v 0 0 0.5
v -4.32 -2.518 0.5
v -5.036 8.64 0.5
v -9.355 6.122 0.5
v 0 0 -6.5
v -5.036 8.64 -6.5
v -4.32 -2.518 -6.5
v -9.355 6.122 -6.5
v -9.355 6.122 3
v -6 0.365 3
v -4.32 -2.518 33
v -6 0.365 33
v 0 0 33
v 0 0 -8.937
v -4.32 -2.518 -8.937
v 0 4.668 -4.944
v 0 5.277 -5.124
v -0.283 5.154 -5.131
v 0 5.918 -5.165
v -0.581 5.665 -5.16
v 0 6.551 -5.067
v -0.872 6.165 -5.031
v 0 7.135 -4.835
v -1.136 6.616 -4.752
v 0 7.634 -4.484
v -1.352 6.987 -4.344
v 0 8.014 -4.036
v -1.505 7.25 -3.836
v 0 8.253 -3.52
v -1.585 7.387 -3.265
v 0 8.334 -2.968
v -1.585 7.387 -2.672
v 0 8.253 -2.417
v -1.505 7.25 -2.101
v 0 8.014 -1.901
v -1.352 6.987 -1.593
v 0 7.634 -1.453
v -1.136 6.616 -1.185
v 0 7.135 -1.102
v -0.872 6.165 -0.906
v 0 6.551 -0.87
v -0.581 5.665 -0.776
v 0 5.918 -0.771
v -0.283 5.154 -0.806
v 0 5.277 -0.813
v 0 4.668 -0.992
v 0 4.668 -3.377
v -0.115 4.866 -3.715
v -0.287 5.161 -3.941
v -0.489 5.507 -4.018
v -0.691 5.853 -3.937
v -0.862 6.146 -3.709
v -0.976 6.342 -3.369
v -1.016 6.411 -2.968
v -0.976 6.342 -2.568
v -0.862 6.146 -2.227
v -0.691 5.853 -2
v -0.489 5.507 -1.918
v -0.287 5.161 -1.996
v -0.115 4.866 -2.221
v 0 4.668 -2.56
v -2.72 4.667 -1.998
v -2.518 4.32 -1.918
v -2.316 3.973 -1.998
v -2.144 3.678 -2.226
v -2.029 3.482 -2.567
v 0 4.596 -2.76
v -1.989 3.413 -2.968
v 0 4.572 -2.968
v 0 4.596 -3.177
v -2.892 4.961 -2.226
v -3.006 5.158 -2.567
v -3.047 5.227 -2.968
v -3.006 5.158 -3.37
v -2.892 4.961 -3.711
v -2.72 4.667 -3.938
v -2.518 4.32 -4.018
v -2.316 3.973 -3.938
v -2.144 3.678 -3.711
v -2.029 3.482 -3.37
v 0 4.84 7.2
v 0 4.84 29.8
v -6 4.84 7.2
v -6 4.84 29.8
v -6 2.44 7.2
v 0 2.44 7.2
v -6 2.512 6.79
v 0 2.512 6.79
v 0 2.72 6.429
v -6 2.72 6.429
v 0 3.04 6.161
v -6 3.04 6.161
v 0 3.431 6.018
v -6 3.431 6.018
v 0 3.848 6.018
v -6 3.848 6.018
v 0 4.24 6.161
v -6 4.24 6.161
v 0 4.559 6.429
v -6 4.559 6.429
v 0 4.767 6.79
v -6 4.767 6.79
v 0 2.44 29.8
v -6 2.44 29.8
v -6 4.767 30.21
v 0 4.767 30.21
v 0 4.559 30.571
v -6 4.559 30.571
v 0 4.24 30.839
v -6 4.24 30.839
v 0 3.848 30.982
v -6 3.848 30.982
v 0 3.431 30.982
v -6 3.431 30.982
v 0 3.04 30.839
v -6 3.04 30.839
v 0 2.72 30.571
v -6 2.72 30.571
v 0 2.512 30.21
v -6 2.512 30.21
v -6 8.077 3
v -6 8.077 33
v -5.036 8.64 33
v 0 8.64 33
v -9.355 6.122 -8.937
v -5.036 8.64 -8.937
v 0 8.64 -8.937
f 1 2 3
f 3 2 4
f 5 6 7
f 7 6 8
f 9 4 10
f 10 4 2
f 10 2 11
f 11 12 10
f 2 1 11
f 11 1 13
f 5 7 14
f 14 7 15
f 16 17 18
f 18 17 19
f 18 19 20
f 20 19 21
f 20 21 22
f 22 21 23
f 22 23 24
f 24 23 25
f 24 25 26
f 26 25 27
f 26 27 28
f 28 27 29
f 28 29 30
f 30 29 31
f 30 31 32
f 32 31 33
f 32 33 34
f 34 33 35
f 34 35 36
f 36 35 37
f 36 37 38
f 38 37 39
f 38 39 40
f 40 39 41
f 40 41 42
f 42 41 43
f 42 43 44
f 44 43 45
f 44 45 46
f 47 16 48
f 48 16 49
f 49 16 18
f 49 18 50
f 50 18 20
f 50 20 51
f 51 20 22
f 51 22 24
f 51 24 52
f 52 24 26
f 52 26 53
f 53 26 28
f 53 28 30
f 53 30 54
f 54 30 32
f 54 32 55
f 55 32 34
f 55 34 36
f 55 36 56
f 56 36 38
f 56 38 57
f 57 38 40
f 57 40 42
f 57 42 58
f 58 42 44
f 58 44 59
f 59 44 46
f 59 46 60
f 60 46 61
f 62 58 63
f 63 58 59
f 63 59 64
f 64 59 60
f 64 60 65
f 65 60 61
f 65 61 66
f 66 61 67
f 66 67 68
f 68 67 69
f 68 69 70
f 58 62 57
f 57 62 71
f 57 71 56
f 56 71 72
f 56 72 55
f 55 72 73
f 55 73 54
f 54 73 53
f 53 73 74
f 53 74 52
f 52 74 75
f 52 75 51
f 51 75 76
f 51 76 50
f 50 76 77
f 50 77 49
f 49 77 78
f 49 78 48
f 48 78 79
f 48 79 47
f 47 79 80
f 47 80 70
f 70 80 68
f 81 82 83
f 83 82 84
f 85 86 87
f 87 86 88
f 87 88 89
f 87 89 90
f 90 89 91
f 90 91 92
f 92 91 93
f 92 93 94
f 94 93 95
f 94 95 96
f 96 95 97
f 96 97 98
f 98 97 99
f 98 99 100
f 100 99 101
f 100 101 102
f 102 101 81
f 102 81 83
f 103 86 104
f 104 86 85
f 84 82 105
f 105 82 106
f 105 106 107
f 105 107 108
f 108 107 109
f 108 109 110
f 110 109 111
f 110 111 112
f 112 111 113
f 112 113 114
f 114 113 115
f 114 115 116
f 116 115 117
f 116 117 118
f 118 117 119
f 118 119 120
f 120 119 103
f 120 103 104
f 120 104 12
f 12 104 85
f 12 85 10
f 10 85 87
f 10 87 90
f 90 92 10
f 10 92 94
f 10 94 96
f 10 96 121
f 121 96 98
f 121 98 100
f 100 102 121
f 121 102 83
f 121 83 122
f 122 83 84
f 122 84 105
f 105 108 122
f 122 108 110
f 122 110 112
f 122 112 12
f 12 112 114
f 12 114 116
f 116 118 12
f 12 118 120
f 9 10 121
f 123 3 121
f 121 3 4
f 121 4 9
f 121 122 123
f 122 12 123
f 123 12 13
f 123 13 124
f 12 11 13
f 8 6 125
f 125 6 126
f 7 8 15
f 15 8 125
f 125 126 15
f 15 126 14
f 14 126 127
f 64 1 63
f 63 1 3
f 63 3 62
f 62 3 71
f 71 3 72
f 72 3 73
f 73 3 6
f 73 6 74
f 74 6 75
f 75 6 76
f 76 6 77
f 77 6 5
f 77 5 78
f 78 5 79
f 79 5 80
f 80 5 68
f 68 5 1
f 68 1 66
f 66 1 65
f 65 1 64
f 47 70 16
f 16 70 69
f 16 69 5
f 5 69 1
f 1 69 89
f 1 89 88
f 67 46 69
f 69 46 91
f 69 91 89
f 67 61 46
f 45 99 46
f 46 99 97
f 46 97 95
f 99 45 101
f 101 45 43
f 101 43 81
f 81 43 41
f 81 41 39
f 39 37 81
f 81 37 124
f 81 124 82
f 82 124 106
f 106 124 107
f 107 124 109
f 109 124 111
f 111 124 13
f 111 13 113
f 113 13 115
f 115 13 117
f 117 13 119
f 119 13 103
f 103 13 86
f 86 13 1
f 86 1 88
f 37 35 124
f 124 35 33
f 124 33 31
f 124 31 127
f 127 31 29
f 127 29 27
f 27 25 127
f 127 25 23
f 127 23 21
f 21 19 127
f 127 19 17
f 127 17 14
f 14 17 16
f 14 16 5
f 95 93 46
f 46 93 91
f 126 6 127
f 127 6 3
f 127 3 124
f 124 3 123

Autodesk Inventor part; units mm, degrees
ref_plane "YZ Plane" through (0, 0, 0) normal (1, 0, 0) x (0, 1, 0)
ref_plane "XZ Plane" through (0, 0, 0) normal (0, 1, 0) x (-1, 0, 0)
sketch "Skizze1" plane through (0, 0, 0) normal (0, 0, 1) x (1, 0, 0)
  line L0 (0, 0) -> (-5.0357, 8.6396) projected
  line L1 (-5.0357, 8.6396) -> (-9.3555, 6.1217) projected
  line L2 (-4.3198, -2.5178) -> (-9.3555, 6.1217) projected
  line L3 (0, 0) -> (-4.3198, -2.5178) projected
  line L4 (0, 0) -> (0, 8.6396)
  line L5 (0, 8.6396) -> (-5.0357, 8.6396)
extrude "Extrusion1" add sketch "Skizze1" along normal blind 3
sketch "Skizze2" plane through (0, 0, 3) normal (0, 0, 1) x (1, 0, 0)
  line L0 (0, 8.6396) -> (-5.0357, 8.6396) projected
  line L1 (0, 0) -> (0, 8.6396) projected
  line L2 (-4.3198, -2.5178) -> (0, 0) projected
  line L3 (-9.3555, 6.1217) -> (-4.3198, -2.5178) projected
  line L4 (-5.0357, 8.6396) -> (-9.3555, 6.1217) projected
  line L5 (0, 0) -> (-5.0357, 8.6396) projected
  line L6 (0, 0) -> (-4.3198, -2.5178) projected
  line L7 (-9.3555, 6.1217) -> (-4.3198, -2.5178) projected
  line L8 (-5.0357, 8.6396) -> (-9.3555, 6.1217) projected
ref_plane "Arbeitsebene1" through (-10.5829, -3.5471, -5.9368) normal (0, 0, -1) x (0, 1, 0)
extrude "Extrusion2" add sketch "Skizze2" against normal up to surface (8.9368 mm away) contours L1 L5 L0
sketch "Skizze3" plane through (0, 8.6396, -5.9368) normal (0, 0, -1) x (-1, 0, 0)
  line L0 (6.3089, -7.7448) -> (1.9891, -5.2269)
  line L1 (0, -8.6396) -> (5.0357, 0) projected
  line L2 (0, -8.6396) -> (4.3198, -11.1574) projected
  line L3 (9.3555, -2.5178) -> (4.3198, -11.1574) projected
  line L4 (5.0357, 0) -> (9.3555, -2.5178) projected
  line L5 (0, -8.6396) -> (0, 0) projected
  line L6 (5.0357, 0) -> (0, -8.6396) projected
  line L7 (0, 0) -> (5.0357, 0) projected
extrude "Extrusion3" add sketch "Skizze3" along normal blind 3
sketch "Skizze4" plane through (-5.0357, 8.6396, -5.9368) normal (-0.8639552, -0.5035686, 0) x (0, 0, 1)
  circle A0 centre (2.9684, -5) radius 1.05 projected
  point P0 (5.9368, -10)
extrude "Extrusion4" cut sketch "Skizze4" against normal through all
sketch "Skizze6" plane through (0, 0, 3) normal (0, 0, 1) x (1, 0, 0)
  line L0 (-5.0357, 8.6396) -> (-9.3555, 6.1217) projected
  line L1 (-9.3555, 6.1217) -> (-4.3198, -2.5178) projected
  line L2 (-4.3198, -2.5178) -> (0, 0) projected
  line L3 (0, 0) -> (0, 8.6396) projected
  line L4 (0, 8.6396) -> (-5.0357, 8.6396) projected
extrude "Extrusion5" add sketch "Skizze6" along normal blind 30
sketch "Skizze7" plane through (0, 0, 33) normal (0, 0, 1) x (1, 0, 0)
  line L0 (0, 8.6396) -> (0, 0) projected
  line L1 (0, 8.6396) -> (-6, 8.6396)
  line L2 (-6, 8.6396) -> (-6, -6.275)
  line L3 (-6, -6.275) -> (0, -6.275)
  line L4 (0, -6.275) -> (0, 8.6396)
  line L5 (-4.3198, -2.5178) -> (0, 0) projected
  line L6 (0, 0) -> (0, 8.6396) projected
  line L7 (0, 8.6396) -> (-5.0357, 8.6396) projected
  line L8 (-5.0357, 8.6396) -> (-9.3555, 6.1217) projected
  line L9 (-9.3555, 6.1217) -> (-4.3198, -2.5178) projected
  point P0 (-6, 0.3649)
  point P1 (-6, 8.0775)
  dimension "d10" = 6
extrude "Extrusion6" cut sketch "Skizze7" against normal blind 30 contours L2 L9 L8
sketch "Skizze8" plane through (-6, 0.3649, 33) normal (-1, 0, 0) x (0, 0, 1)
  line L0 (-3.2, 3.2747) -> (-25.8, 3.2747) construction
  line L1 (-3.2, 4.4747) -> (-25.8, 4.4747)
  line L2 (-25.8, 2.0747) -> (-3.2, 2.0747)
  arc A0 (-3.2, 2.0747) -> (-3.2, 4.4747) centre (-3.2, 3.2747) ccw
  arc A1 (-25.8, 4.4747) -> (-25.8, 2.0747) centre (-25.8, 3.2747) ccw
  line L3 (0, 7.7126) -> (0, 0) projected
  line L4 (-33, 8.2747) -> (0, 8.2747) projected
  point P0 (-33, -0.3649)
  point P1 (-14.5, 3.2747)
  dimension "d13" = 2.4
  dimension "d14" = 25
  dimension "d15" = 2
  dimension "d16" = 5
extrude "Extrusion7" cut sketch "Skizze8" against normal blind 30
ref_plane "Arbeitsebene2" through (0, 8.6396, -8.9368) normal (-0.8639552, -0.5035686, 0) x (0, 0, 1)
sketch "Skizze9" plane through (0, 8.6396, -8.9368) normal (-0.8639552, -0.5035686, 0) x (0, 0, 1)
  circle A0 centre (5.9684, -2.4642) radius 1.05 projected
  circle A1 centre (5.9684, -2.4642) radius 1.05 projected
  circle A2 centre (5.9684, -2.4642) radius 2.2
  point P0 (8.9368, -7.4642)
  dimension "d19" = 4.4
extrude "Extrusion8" cut sketch "Skizze9" along normal blind 2
sketch "Skizze10" plane through (0, 0, 0) normal (0, 0, -1) x (-1, 0, 0)
  line L0 (5.0357, 8.6396) -> (0, 0) projected
  line L1 (4.3198, -2.5178) -> (0, 0) projected
  line L2 (9.3555, 6.1217) -> (4.3198, -2.5178) projected
  line L3 (5.0357, 8.6396) -> (9.3555, 6.1217) projected
extrude "Extrusion9" cut sketch "Skizze10" along normal blind 6.5 and the other way blind 0.5
properties part number "Slider"
